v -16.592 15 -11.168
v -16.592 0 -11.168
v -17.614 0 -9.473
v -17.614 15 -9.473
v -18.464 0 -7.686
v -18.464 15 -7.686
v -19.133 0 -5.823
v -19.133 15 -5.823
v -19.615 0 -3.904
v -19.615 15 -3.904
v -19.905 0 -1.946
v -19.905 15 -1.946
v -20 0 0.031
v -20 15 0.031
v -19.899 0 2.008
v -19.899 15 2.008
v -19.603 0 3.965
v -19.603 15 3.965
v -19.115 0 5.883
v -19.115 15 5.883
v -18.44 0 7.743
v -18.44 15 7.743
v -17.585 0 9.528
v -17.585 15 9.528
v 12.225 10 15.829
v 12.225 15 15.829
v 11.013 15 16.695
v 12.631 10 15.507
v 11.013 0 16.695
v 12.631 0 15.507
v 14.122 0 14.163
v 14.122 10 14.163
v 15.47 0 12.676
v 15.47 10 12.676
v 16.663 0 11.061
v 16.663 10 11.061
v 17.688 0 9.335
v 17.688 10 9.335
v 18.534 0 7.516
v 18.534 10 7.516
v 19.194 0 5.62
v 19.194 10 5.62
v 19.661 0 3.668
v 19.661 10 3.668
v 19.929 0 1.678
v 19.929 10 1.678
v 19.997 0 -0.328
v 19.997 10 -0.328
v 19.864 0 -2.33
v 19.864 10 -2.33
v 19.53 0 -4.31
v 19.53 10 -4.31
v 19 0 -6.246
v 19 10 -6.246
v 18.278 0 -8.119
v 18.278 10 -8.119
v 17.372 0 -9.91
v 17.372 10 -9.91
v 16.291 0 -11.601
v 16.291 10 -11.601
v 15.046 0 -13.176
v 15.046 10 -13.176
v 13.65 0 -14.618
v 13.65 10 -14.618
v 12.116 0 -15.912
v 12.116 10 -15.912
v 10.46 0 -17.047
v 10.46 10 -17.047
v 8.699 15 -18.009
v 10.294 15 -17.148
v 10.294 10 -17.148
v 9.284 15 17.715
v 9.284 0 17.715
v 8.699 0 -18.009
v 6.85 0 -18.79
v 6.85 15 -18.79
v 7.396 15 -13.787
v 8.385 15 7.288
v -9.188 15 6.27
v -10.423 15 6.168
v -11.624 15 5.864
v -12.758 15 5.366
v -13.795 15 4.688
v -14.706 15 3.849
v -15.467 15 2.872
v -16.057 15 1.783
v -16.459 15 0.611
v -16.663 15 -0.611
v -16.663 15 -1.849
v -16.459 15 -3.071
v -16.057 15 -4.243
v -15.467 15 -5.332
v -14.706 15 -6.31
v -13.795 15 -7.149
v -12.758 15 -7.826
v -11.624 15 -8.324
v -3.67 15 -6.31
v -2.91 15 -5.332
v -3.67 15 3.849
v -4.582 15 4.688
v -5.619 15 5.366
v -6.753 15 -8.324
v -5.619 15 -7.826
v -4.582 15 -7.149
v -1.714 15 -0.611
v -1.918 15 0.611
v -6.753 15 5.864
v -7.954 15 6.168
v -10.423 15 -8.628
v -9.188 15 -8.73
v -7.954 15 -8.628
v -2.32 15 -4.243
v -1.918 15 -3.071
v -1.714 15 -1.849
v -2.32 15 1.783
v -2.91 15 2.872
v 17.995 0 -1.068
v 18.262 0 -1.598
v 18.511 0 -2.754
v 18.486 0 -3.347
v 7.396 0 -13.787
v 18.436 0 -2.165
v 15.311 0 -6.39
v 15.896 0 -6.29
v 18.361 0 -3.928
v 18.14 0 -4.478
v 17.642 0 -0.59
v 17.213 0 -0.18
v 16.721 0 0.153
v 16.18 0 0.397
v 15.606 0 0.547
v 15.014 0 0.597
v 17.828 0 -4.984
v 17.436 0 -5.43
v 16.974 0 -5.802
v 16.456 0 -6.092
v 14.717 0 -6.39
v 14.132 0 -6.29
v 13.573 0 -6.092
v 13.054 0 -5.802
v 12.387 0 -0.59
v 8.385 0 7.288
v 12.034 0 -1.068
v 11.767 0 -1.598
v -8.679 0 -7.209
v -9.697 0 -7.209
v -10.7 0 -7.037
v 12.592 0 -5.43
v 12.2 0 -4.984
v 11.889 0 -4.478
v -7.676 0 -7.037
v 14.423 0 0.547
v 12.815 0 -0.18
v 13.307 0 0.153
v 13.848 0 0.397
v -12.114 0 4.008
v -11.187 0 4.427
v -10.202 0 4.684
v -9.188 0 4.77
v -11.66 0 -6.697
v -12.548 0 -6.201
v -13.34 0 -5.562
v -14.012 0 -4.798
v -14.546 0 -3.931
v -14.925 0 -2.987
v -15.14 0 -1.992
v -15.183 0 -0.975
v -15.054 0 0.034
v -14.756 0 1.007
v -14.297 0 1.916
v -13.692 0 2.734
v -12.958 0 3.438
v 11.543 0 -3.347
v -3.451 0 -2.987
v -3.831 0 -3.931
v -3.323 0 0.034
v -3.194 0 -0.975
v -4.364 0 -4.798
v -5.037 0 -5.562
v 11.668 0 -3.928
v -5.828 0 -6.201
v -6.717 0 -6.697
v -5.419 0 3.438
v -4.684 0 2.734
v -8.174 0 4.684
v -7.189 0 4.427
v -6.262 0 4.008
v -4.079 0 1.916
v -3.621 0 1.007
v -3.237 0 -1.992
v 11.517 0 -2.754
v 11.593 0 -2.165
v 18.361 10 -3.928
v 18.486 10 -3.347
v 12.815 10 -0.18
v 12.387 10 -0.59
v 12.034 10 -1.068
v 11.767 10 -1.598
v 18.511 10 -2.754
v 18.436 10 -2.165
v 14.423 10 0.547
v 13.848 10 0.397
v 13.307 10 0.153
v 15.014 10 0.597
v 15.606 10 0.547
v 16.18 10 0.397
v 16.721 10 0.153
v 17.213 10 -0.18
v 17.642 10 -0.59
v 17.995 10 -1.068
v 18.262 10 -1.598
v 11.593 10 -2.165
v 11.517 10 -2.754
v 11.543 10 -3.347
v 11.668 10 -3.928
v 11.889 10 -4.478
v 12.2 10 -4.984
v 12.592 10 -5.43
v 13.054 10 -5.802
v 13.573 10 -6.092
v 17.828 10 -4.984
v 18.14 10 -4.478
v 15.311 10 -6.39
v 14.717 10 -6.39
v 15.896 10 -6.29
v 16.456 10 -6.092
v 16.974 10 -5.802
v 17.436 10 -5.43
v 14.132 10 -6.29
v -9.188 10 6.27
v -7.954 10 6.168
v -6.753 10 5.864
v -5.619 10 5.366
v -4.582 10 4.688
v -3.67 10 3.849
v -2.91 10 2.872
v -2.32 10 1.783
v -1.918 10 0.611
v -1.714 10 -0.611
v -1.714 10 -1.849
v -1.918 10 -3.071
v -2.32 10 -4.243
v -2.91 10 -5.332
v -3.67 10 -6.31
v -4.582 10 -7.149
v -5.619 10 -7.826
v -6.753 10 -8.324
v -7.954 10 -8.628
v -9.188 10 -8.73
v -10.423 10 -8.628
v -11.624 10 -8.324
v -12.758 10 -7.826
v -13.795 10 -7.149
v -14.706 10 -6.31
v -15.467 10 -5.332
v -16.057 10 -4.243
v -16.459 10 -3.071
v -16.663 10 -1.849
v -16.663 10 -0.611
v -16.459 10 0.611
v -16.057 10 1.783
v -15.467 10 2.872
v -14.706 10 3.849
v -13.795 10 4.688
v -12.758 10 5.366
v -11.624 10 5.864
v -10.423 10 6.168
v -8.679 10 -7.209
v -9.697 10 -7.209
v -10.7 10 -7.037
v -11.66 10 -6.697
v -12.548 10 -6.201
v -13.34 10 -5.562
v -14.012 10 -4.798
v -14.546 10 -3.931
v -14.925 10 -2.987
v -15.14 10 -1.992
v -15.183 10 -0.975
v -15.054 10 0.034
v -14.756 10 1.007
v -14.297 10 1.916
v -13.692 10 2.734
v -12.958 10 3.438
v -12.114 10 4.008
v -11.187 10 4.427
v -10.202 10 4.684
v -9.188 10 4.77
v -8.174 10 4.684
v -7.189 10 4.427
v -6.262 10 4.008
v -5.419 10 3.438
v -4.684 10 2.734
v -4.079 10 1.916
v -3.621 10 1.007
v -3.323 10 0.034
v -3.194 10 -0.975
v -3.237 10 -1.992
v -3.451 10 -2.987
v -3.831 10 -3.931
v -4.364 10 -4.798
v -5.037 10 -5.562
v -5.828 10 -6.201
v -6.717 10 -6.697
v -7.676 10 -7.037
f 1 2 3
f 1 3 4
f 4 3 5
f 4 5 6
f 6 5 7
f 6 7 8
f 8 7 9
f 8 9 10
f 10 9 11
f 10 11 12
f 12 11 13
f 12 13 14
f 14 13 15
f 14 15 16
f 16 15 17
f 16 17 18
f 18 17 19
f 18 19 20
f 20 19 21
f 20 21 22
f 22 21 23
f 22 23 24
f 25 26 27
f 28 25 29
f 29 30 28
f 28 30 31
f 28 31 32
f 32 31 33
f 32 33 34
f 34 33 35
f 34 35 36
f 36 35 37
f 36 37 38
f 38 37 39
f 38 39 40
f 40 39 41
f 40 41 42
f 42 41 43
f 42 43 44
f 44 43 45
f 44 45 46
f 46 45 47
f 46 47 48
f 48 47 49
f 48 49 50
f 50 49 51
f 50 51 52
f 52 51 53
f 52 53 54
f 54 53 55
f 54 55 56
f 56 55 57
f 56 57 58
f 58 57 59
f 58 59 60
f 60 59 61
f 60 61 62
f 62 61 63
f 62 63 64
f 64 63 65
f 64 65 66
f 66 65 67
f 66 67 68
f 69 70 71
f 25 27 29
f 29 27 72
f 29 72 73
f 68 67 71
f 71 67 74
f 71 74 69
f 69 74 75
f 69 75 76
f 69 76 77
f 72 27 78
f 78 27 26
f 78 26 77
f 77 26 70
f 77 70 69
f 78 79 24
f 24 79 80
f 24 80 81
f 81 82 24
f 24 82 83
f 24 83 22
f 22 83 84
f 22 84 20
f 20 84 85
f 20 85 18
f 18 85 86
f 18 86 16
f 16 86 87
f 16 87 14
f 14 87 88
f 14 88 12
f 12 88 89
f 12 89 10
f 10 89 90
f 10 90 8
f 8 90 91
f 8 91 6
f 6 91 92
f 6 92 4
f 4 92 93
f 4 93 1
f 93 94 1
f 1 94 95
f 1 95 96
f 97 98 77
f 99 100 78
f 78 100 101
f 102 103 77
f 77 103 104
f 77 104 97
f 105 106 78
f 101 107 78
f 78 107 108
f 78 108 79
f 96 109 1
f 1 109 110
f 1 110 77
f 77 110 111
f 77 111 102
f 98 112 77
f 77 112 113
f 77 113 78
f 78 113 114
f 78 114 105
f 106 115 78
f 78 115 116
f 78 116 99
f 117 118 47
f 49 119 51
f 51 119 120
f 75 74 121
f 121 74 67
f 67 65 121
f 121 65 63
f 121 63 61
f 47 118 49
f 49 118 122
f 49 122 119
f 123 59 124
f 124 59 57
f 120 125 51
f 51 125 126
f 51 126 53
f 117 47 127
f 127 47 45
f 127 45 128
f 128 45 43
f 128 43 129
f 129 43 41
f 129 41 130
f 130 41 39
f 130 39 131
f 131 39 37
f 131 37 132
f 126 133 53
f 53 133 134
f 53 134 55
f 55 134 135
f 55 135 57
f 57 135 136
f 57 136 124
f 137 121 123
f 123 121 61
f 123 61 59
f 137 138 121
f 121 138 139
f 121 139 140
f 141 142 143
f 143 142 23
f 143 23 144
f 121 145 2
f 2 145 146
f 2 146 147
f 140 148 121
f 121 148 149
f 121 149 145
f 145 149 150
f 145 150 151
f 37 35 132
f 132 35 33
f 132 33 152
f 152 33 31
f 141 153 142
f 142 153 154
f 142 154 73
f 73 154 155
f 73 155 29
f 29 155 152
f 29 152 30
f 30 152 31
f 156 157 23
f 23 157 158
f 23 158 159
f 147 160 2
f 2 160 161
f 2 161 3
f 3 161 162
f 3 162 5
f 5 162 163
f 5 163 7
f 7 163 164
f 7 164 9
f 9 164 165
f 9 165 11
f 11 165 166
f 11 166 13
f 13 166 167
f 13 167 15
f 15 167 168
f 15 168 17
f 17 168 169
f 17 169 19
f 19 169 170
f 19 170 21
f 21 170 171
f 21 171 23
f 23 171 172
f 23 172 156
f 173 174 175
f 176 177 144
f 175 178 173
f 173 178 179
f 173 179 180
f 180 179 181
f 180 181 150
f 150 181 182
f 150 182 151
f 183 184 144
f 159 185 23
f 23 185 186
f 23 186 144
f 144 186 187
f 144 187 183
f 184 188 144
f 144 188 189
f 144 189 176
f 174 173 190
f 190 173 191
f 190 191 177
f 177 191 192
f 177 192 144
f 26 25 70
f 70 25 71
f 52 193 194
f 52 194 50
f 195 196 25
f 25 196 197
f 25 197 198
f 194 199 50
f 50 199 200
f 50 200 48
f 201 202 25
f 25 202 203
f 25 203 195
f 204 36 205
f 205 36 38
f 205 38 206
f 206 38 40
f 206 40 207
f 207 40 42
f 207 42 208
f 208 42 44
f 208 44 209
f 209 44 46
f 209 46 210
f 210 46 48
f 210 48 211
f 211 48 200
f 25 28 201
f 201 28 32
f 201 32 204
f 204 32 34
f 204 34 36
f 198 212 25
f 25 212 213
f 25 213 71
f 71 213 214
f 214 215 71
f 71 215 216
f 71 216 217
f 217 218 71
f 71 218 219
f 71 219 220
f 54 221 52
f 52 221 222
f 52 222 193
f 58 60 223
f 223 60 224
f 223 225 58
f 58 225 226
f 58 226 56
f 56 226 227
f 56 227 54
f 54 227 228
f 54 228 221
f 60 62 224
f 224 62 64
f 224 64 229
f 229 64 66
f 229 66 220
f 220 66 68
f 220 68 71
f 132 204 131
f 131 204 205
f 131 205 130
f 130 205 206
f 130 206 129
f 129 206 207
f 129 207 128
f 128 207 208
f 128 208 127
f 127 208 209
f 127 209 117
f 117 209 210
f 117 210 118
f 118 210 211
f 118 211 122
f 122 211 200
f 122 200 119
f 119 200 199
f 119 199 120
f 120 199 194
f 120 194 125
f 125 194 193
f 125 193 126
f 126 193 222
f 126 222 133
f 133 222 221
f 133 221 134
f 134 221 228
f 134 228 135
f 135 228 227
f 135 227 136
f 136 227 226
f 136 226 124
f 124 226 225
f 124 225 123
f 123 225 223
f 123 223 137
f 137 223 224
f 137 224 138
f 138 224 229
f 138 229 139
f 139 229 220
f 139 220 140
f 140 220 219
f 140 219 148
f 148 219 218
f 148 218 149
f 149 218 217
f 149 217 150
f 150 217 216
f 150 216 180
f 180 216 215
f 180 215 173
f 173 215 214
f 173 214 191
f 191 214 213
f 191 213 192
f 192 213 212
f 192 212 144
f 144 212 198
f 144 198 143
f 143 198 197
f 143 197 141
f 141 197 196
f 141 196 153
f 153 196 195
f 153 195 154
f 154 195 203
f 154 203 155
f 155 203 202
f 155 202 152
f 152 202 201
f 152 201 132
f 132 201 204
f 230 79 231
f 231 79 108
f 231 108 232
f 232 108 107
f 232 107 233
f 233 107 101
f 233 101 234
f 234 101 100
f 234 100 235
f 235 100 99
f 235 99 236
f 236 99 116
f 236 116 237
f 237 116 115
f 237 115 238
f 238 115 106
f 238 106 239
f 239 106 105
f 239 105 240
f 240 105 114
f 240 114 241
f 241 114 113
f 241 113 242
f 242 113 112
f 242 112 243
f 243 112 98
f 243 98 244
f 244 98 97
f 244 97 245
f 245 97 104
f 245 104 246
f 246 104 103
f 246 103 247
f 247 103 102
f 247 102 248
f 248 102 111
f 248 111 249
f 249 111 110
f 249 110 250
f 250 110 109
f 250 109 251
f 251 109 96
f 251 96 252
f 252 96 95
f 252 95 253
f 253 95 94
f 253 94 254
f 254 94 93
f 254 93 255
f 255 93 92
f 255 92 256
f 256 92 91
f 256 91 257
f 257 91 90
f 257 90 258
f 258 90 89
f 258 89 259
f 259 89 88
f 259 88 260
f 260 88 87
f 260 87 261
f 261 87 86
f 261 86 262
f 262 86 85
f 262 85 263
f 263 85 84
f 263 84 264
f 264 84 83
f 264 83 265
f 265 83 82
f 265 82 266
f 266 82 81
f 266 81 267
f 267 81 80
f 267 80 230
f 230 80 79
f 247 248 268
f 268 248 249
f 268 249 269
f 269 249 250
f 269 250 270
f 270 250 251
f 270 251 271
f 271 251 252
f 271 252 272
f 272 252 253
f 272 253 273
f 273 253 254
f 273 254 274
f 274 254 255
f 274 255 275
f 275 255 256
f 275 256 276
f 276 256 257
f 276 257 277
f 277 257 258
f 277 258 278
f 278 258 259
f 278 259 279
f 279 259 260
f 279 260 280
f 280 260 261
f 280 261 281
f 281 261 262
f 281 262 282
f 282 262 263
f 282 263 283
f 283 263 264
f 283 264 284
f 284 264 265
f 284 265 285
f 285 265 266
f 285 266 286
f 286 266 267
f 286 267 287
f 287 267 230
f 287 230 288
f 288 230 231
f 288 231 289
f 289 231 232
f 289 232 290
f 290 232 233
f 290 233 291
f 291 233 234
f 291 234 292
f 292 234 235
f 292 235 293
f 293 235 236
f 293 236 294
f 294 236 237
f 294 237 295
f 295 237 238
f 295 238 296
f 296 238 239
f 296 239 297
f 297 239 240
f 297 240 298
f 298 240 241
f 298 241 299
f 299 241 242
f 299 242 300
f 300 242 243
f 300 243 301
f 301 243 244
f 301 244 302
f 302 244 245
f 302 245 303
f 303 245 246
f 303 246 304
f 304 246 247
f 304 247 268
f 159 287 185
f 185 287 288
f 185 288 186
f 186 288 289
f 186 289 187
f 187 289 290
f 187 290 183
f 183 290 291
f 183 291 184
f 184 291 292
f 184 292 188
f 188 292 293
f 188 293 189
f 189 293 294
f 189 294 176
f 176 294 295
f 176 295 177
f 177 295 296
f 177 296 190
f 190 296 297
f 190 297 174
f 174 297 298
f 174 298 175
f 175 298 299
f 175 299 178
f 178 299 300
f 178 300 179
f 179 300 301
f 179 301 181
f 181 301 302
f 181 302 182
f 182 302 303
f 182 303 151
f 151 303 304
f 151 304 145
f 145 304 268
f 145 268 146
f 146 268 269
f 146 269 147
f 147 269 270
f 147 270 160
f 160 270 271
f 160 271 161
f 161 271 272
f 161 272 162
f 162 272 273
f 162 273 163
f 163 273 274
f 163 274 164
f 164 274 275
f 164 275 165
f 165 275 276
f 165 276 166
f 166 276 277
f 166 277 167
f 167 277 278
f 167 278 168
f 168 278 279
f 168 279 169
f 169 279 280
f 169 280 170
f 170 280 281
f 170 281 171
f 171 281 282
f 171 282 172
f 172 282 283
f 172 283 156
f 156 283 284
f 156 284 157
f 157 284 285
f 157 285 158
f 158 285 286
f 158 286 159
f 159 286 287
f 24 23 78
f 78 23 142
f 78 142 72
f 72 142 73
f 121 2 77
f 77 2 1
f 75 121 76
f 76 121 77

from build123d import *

# Parameters (mm, degrees)
SKETCH1_R               = 20
BOSS_EXTRUDE1_DEPTH     = 15
CUT_EXTRUDE1_DEPTH      = 1
CUT_EXTRUDE1_DEPTH_BACK = 5
SKETCH3_R               = 3.5
CUT_EXTRUDE2_DEPTH      = 11
SKETCH5_R               = 7.5
CUT_EXTRUDE4_DEPTH      = 5
SKETCH4_R               = 6
CUT_EXTRUDE5_DEPTH      = 16
CUT_EXTRUDE6_DEPTH      = 1
CUT_EXTRUDE6_DEPTH_BACK = 16
CUT_EXTRUDE7_DEPTH      = 1
CUT_EXTRUDE7_DEPTH_BACK = 16


with BuildPart() as part:
    # Sketch1 → Boss-Extrude1 (new body)
    with BuildSketch(Plane(origin=(0, 0, 0), x_dir=(1, 0, 0), z_dir=(0, 1, 0))):
        Circle(SKETCH1_R)
    extrude(amount=BOSS_EXTRUDE1_DEPTH)

    # Sketch2 → Cut-Extrude1 (cut, two sides)
    with BuildSketch(Plane(origin=(0, 15, 0), x_dir=(1, 0, 0), z_dir=(0, 1, 0))) as cut_extrude1_sk:
        Polygon((4.074284854, 123.342943671), (10.2938366, 17.14750501), (12.225151258, -15.828634708), (18.444703004, -122.024073369), (230.835580327, -109.584969878), (216.465162177, 135.782047162), align=None)
    extrude(amount=CUT_EXTRUDE1_DEPTH, mode=Mode.SUBTRACT)
    extrude(cut_extrude1_sk.sketch, amount=-CUT_EXTRUDE1_DEPTH_BACK, mode=Mode.SUBTRACT)

    # Sketch3 → Cut-Extrude2 (cut, through all)
    with BuildSketch(Plane(origin=(0, 10, 0), x_dir=(1, 0, 0), z_dir=(0, 1, 0))):
        with Locations((15.014261177, 2.902690148)):
            Circle(SKETCH3_R)
    extrude(amount=-CUT_EXTRUDE2_DEPTH, mode=Mode.SUBTRACT)

    # Sketch5 → Cut-Extrude4 (cut)
    with BuildSketch(Plane(origin=(0, 15, 0), x_dir=(1, 0, 0), z_dir=(0, 1, 0))):
        with Locations((-9.188292451, 1.230126279)):
            Circle(SKETCH5_R)
    extrude(amount=-CUT_EXTRUDE4_DEPTH, mode=Mode.SUBTRACT)

    # Sketch4 → Cut-Extrude5 (cut, through all)
    with BuildSketch(Plane(origin=(0, 15, 0), x_dir=(1, 0, 0), z_dir=(0, 1, 0))):
        with Locations((-9.188292451, 1.230126279)):
            Circle(SKETCH4_R)
    extrude(amount=-CUT_EXTRUDE5_DEPTH, mode=Mode.SUBTRACT)

    # Sketch6 → Cut-Extrude6 (cut, two sides)
    with BuildSketch(Plane(origin=(0, 15, 0), x_dir=(1, 0, 0), z_dir=(0, 1, 0))) as cut_extrude6_sk:
        Polygon((-122.787131769, -18.599673993), (-17.584679199, -9.527804442), (8.38493326, -7.288380068), (9.284012328, -17.714601748), (18.355881879, -122.917054318), (-107.166589312, -292.750880754), (-248.30960296, -188.433500429), align=None)
    extrude(amount=CUT_EXTRUDE6_DEPTH, mode=Mode.SUBTRACT)
    extrude(cut_extrude6_sk.sketch, amount=-CUT_EXTRUDE6_DEPTH_BACK, mode=Mode.SUBTRACT)

    # Sketch7 → Cut-Extrude7 (cut, two sides)
    with BuildSketch(Plane(origin=(0, 15, 0), x_dir=(1, 0, 0), z_dir=(0, 1, 0))) as cut_extrude7_sk:
        Polygon((-119.21548429, -0.03712377), (-16.591552302, 11.167828446), (7.395972386, 13.786896559), (6.849658032, 18.79048123), (-4.355294184, 121.414413217), (-154.363796188, 263.281741412), (-269.223986293, 141.830204426), align=None)
    extrude(amount=CUT_EXTRUDE7_DEPTH, mode=Mode.SUBTRACT)
    extrude(cut_extrude7_sk.sketch, amount=-CUT_EXTRUDE7_DEPTH_BACK, mode=Mode.SUBTRACT)


solid = part.part
